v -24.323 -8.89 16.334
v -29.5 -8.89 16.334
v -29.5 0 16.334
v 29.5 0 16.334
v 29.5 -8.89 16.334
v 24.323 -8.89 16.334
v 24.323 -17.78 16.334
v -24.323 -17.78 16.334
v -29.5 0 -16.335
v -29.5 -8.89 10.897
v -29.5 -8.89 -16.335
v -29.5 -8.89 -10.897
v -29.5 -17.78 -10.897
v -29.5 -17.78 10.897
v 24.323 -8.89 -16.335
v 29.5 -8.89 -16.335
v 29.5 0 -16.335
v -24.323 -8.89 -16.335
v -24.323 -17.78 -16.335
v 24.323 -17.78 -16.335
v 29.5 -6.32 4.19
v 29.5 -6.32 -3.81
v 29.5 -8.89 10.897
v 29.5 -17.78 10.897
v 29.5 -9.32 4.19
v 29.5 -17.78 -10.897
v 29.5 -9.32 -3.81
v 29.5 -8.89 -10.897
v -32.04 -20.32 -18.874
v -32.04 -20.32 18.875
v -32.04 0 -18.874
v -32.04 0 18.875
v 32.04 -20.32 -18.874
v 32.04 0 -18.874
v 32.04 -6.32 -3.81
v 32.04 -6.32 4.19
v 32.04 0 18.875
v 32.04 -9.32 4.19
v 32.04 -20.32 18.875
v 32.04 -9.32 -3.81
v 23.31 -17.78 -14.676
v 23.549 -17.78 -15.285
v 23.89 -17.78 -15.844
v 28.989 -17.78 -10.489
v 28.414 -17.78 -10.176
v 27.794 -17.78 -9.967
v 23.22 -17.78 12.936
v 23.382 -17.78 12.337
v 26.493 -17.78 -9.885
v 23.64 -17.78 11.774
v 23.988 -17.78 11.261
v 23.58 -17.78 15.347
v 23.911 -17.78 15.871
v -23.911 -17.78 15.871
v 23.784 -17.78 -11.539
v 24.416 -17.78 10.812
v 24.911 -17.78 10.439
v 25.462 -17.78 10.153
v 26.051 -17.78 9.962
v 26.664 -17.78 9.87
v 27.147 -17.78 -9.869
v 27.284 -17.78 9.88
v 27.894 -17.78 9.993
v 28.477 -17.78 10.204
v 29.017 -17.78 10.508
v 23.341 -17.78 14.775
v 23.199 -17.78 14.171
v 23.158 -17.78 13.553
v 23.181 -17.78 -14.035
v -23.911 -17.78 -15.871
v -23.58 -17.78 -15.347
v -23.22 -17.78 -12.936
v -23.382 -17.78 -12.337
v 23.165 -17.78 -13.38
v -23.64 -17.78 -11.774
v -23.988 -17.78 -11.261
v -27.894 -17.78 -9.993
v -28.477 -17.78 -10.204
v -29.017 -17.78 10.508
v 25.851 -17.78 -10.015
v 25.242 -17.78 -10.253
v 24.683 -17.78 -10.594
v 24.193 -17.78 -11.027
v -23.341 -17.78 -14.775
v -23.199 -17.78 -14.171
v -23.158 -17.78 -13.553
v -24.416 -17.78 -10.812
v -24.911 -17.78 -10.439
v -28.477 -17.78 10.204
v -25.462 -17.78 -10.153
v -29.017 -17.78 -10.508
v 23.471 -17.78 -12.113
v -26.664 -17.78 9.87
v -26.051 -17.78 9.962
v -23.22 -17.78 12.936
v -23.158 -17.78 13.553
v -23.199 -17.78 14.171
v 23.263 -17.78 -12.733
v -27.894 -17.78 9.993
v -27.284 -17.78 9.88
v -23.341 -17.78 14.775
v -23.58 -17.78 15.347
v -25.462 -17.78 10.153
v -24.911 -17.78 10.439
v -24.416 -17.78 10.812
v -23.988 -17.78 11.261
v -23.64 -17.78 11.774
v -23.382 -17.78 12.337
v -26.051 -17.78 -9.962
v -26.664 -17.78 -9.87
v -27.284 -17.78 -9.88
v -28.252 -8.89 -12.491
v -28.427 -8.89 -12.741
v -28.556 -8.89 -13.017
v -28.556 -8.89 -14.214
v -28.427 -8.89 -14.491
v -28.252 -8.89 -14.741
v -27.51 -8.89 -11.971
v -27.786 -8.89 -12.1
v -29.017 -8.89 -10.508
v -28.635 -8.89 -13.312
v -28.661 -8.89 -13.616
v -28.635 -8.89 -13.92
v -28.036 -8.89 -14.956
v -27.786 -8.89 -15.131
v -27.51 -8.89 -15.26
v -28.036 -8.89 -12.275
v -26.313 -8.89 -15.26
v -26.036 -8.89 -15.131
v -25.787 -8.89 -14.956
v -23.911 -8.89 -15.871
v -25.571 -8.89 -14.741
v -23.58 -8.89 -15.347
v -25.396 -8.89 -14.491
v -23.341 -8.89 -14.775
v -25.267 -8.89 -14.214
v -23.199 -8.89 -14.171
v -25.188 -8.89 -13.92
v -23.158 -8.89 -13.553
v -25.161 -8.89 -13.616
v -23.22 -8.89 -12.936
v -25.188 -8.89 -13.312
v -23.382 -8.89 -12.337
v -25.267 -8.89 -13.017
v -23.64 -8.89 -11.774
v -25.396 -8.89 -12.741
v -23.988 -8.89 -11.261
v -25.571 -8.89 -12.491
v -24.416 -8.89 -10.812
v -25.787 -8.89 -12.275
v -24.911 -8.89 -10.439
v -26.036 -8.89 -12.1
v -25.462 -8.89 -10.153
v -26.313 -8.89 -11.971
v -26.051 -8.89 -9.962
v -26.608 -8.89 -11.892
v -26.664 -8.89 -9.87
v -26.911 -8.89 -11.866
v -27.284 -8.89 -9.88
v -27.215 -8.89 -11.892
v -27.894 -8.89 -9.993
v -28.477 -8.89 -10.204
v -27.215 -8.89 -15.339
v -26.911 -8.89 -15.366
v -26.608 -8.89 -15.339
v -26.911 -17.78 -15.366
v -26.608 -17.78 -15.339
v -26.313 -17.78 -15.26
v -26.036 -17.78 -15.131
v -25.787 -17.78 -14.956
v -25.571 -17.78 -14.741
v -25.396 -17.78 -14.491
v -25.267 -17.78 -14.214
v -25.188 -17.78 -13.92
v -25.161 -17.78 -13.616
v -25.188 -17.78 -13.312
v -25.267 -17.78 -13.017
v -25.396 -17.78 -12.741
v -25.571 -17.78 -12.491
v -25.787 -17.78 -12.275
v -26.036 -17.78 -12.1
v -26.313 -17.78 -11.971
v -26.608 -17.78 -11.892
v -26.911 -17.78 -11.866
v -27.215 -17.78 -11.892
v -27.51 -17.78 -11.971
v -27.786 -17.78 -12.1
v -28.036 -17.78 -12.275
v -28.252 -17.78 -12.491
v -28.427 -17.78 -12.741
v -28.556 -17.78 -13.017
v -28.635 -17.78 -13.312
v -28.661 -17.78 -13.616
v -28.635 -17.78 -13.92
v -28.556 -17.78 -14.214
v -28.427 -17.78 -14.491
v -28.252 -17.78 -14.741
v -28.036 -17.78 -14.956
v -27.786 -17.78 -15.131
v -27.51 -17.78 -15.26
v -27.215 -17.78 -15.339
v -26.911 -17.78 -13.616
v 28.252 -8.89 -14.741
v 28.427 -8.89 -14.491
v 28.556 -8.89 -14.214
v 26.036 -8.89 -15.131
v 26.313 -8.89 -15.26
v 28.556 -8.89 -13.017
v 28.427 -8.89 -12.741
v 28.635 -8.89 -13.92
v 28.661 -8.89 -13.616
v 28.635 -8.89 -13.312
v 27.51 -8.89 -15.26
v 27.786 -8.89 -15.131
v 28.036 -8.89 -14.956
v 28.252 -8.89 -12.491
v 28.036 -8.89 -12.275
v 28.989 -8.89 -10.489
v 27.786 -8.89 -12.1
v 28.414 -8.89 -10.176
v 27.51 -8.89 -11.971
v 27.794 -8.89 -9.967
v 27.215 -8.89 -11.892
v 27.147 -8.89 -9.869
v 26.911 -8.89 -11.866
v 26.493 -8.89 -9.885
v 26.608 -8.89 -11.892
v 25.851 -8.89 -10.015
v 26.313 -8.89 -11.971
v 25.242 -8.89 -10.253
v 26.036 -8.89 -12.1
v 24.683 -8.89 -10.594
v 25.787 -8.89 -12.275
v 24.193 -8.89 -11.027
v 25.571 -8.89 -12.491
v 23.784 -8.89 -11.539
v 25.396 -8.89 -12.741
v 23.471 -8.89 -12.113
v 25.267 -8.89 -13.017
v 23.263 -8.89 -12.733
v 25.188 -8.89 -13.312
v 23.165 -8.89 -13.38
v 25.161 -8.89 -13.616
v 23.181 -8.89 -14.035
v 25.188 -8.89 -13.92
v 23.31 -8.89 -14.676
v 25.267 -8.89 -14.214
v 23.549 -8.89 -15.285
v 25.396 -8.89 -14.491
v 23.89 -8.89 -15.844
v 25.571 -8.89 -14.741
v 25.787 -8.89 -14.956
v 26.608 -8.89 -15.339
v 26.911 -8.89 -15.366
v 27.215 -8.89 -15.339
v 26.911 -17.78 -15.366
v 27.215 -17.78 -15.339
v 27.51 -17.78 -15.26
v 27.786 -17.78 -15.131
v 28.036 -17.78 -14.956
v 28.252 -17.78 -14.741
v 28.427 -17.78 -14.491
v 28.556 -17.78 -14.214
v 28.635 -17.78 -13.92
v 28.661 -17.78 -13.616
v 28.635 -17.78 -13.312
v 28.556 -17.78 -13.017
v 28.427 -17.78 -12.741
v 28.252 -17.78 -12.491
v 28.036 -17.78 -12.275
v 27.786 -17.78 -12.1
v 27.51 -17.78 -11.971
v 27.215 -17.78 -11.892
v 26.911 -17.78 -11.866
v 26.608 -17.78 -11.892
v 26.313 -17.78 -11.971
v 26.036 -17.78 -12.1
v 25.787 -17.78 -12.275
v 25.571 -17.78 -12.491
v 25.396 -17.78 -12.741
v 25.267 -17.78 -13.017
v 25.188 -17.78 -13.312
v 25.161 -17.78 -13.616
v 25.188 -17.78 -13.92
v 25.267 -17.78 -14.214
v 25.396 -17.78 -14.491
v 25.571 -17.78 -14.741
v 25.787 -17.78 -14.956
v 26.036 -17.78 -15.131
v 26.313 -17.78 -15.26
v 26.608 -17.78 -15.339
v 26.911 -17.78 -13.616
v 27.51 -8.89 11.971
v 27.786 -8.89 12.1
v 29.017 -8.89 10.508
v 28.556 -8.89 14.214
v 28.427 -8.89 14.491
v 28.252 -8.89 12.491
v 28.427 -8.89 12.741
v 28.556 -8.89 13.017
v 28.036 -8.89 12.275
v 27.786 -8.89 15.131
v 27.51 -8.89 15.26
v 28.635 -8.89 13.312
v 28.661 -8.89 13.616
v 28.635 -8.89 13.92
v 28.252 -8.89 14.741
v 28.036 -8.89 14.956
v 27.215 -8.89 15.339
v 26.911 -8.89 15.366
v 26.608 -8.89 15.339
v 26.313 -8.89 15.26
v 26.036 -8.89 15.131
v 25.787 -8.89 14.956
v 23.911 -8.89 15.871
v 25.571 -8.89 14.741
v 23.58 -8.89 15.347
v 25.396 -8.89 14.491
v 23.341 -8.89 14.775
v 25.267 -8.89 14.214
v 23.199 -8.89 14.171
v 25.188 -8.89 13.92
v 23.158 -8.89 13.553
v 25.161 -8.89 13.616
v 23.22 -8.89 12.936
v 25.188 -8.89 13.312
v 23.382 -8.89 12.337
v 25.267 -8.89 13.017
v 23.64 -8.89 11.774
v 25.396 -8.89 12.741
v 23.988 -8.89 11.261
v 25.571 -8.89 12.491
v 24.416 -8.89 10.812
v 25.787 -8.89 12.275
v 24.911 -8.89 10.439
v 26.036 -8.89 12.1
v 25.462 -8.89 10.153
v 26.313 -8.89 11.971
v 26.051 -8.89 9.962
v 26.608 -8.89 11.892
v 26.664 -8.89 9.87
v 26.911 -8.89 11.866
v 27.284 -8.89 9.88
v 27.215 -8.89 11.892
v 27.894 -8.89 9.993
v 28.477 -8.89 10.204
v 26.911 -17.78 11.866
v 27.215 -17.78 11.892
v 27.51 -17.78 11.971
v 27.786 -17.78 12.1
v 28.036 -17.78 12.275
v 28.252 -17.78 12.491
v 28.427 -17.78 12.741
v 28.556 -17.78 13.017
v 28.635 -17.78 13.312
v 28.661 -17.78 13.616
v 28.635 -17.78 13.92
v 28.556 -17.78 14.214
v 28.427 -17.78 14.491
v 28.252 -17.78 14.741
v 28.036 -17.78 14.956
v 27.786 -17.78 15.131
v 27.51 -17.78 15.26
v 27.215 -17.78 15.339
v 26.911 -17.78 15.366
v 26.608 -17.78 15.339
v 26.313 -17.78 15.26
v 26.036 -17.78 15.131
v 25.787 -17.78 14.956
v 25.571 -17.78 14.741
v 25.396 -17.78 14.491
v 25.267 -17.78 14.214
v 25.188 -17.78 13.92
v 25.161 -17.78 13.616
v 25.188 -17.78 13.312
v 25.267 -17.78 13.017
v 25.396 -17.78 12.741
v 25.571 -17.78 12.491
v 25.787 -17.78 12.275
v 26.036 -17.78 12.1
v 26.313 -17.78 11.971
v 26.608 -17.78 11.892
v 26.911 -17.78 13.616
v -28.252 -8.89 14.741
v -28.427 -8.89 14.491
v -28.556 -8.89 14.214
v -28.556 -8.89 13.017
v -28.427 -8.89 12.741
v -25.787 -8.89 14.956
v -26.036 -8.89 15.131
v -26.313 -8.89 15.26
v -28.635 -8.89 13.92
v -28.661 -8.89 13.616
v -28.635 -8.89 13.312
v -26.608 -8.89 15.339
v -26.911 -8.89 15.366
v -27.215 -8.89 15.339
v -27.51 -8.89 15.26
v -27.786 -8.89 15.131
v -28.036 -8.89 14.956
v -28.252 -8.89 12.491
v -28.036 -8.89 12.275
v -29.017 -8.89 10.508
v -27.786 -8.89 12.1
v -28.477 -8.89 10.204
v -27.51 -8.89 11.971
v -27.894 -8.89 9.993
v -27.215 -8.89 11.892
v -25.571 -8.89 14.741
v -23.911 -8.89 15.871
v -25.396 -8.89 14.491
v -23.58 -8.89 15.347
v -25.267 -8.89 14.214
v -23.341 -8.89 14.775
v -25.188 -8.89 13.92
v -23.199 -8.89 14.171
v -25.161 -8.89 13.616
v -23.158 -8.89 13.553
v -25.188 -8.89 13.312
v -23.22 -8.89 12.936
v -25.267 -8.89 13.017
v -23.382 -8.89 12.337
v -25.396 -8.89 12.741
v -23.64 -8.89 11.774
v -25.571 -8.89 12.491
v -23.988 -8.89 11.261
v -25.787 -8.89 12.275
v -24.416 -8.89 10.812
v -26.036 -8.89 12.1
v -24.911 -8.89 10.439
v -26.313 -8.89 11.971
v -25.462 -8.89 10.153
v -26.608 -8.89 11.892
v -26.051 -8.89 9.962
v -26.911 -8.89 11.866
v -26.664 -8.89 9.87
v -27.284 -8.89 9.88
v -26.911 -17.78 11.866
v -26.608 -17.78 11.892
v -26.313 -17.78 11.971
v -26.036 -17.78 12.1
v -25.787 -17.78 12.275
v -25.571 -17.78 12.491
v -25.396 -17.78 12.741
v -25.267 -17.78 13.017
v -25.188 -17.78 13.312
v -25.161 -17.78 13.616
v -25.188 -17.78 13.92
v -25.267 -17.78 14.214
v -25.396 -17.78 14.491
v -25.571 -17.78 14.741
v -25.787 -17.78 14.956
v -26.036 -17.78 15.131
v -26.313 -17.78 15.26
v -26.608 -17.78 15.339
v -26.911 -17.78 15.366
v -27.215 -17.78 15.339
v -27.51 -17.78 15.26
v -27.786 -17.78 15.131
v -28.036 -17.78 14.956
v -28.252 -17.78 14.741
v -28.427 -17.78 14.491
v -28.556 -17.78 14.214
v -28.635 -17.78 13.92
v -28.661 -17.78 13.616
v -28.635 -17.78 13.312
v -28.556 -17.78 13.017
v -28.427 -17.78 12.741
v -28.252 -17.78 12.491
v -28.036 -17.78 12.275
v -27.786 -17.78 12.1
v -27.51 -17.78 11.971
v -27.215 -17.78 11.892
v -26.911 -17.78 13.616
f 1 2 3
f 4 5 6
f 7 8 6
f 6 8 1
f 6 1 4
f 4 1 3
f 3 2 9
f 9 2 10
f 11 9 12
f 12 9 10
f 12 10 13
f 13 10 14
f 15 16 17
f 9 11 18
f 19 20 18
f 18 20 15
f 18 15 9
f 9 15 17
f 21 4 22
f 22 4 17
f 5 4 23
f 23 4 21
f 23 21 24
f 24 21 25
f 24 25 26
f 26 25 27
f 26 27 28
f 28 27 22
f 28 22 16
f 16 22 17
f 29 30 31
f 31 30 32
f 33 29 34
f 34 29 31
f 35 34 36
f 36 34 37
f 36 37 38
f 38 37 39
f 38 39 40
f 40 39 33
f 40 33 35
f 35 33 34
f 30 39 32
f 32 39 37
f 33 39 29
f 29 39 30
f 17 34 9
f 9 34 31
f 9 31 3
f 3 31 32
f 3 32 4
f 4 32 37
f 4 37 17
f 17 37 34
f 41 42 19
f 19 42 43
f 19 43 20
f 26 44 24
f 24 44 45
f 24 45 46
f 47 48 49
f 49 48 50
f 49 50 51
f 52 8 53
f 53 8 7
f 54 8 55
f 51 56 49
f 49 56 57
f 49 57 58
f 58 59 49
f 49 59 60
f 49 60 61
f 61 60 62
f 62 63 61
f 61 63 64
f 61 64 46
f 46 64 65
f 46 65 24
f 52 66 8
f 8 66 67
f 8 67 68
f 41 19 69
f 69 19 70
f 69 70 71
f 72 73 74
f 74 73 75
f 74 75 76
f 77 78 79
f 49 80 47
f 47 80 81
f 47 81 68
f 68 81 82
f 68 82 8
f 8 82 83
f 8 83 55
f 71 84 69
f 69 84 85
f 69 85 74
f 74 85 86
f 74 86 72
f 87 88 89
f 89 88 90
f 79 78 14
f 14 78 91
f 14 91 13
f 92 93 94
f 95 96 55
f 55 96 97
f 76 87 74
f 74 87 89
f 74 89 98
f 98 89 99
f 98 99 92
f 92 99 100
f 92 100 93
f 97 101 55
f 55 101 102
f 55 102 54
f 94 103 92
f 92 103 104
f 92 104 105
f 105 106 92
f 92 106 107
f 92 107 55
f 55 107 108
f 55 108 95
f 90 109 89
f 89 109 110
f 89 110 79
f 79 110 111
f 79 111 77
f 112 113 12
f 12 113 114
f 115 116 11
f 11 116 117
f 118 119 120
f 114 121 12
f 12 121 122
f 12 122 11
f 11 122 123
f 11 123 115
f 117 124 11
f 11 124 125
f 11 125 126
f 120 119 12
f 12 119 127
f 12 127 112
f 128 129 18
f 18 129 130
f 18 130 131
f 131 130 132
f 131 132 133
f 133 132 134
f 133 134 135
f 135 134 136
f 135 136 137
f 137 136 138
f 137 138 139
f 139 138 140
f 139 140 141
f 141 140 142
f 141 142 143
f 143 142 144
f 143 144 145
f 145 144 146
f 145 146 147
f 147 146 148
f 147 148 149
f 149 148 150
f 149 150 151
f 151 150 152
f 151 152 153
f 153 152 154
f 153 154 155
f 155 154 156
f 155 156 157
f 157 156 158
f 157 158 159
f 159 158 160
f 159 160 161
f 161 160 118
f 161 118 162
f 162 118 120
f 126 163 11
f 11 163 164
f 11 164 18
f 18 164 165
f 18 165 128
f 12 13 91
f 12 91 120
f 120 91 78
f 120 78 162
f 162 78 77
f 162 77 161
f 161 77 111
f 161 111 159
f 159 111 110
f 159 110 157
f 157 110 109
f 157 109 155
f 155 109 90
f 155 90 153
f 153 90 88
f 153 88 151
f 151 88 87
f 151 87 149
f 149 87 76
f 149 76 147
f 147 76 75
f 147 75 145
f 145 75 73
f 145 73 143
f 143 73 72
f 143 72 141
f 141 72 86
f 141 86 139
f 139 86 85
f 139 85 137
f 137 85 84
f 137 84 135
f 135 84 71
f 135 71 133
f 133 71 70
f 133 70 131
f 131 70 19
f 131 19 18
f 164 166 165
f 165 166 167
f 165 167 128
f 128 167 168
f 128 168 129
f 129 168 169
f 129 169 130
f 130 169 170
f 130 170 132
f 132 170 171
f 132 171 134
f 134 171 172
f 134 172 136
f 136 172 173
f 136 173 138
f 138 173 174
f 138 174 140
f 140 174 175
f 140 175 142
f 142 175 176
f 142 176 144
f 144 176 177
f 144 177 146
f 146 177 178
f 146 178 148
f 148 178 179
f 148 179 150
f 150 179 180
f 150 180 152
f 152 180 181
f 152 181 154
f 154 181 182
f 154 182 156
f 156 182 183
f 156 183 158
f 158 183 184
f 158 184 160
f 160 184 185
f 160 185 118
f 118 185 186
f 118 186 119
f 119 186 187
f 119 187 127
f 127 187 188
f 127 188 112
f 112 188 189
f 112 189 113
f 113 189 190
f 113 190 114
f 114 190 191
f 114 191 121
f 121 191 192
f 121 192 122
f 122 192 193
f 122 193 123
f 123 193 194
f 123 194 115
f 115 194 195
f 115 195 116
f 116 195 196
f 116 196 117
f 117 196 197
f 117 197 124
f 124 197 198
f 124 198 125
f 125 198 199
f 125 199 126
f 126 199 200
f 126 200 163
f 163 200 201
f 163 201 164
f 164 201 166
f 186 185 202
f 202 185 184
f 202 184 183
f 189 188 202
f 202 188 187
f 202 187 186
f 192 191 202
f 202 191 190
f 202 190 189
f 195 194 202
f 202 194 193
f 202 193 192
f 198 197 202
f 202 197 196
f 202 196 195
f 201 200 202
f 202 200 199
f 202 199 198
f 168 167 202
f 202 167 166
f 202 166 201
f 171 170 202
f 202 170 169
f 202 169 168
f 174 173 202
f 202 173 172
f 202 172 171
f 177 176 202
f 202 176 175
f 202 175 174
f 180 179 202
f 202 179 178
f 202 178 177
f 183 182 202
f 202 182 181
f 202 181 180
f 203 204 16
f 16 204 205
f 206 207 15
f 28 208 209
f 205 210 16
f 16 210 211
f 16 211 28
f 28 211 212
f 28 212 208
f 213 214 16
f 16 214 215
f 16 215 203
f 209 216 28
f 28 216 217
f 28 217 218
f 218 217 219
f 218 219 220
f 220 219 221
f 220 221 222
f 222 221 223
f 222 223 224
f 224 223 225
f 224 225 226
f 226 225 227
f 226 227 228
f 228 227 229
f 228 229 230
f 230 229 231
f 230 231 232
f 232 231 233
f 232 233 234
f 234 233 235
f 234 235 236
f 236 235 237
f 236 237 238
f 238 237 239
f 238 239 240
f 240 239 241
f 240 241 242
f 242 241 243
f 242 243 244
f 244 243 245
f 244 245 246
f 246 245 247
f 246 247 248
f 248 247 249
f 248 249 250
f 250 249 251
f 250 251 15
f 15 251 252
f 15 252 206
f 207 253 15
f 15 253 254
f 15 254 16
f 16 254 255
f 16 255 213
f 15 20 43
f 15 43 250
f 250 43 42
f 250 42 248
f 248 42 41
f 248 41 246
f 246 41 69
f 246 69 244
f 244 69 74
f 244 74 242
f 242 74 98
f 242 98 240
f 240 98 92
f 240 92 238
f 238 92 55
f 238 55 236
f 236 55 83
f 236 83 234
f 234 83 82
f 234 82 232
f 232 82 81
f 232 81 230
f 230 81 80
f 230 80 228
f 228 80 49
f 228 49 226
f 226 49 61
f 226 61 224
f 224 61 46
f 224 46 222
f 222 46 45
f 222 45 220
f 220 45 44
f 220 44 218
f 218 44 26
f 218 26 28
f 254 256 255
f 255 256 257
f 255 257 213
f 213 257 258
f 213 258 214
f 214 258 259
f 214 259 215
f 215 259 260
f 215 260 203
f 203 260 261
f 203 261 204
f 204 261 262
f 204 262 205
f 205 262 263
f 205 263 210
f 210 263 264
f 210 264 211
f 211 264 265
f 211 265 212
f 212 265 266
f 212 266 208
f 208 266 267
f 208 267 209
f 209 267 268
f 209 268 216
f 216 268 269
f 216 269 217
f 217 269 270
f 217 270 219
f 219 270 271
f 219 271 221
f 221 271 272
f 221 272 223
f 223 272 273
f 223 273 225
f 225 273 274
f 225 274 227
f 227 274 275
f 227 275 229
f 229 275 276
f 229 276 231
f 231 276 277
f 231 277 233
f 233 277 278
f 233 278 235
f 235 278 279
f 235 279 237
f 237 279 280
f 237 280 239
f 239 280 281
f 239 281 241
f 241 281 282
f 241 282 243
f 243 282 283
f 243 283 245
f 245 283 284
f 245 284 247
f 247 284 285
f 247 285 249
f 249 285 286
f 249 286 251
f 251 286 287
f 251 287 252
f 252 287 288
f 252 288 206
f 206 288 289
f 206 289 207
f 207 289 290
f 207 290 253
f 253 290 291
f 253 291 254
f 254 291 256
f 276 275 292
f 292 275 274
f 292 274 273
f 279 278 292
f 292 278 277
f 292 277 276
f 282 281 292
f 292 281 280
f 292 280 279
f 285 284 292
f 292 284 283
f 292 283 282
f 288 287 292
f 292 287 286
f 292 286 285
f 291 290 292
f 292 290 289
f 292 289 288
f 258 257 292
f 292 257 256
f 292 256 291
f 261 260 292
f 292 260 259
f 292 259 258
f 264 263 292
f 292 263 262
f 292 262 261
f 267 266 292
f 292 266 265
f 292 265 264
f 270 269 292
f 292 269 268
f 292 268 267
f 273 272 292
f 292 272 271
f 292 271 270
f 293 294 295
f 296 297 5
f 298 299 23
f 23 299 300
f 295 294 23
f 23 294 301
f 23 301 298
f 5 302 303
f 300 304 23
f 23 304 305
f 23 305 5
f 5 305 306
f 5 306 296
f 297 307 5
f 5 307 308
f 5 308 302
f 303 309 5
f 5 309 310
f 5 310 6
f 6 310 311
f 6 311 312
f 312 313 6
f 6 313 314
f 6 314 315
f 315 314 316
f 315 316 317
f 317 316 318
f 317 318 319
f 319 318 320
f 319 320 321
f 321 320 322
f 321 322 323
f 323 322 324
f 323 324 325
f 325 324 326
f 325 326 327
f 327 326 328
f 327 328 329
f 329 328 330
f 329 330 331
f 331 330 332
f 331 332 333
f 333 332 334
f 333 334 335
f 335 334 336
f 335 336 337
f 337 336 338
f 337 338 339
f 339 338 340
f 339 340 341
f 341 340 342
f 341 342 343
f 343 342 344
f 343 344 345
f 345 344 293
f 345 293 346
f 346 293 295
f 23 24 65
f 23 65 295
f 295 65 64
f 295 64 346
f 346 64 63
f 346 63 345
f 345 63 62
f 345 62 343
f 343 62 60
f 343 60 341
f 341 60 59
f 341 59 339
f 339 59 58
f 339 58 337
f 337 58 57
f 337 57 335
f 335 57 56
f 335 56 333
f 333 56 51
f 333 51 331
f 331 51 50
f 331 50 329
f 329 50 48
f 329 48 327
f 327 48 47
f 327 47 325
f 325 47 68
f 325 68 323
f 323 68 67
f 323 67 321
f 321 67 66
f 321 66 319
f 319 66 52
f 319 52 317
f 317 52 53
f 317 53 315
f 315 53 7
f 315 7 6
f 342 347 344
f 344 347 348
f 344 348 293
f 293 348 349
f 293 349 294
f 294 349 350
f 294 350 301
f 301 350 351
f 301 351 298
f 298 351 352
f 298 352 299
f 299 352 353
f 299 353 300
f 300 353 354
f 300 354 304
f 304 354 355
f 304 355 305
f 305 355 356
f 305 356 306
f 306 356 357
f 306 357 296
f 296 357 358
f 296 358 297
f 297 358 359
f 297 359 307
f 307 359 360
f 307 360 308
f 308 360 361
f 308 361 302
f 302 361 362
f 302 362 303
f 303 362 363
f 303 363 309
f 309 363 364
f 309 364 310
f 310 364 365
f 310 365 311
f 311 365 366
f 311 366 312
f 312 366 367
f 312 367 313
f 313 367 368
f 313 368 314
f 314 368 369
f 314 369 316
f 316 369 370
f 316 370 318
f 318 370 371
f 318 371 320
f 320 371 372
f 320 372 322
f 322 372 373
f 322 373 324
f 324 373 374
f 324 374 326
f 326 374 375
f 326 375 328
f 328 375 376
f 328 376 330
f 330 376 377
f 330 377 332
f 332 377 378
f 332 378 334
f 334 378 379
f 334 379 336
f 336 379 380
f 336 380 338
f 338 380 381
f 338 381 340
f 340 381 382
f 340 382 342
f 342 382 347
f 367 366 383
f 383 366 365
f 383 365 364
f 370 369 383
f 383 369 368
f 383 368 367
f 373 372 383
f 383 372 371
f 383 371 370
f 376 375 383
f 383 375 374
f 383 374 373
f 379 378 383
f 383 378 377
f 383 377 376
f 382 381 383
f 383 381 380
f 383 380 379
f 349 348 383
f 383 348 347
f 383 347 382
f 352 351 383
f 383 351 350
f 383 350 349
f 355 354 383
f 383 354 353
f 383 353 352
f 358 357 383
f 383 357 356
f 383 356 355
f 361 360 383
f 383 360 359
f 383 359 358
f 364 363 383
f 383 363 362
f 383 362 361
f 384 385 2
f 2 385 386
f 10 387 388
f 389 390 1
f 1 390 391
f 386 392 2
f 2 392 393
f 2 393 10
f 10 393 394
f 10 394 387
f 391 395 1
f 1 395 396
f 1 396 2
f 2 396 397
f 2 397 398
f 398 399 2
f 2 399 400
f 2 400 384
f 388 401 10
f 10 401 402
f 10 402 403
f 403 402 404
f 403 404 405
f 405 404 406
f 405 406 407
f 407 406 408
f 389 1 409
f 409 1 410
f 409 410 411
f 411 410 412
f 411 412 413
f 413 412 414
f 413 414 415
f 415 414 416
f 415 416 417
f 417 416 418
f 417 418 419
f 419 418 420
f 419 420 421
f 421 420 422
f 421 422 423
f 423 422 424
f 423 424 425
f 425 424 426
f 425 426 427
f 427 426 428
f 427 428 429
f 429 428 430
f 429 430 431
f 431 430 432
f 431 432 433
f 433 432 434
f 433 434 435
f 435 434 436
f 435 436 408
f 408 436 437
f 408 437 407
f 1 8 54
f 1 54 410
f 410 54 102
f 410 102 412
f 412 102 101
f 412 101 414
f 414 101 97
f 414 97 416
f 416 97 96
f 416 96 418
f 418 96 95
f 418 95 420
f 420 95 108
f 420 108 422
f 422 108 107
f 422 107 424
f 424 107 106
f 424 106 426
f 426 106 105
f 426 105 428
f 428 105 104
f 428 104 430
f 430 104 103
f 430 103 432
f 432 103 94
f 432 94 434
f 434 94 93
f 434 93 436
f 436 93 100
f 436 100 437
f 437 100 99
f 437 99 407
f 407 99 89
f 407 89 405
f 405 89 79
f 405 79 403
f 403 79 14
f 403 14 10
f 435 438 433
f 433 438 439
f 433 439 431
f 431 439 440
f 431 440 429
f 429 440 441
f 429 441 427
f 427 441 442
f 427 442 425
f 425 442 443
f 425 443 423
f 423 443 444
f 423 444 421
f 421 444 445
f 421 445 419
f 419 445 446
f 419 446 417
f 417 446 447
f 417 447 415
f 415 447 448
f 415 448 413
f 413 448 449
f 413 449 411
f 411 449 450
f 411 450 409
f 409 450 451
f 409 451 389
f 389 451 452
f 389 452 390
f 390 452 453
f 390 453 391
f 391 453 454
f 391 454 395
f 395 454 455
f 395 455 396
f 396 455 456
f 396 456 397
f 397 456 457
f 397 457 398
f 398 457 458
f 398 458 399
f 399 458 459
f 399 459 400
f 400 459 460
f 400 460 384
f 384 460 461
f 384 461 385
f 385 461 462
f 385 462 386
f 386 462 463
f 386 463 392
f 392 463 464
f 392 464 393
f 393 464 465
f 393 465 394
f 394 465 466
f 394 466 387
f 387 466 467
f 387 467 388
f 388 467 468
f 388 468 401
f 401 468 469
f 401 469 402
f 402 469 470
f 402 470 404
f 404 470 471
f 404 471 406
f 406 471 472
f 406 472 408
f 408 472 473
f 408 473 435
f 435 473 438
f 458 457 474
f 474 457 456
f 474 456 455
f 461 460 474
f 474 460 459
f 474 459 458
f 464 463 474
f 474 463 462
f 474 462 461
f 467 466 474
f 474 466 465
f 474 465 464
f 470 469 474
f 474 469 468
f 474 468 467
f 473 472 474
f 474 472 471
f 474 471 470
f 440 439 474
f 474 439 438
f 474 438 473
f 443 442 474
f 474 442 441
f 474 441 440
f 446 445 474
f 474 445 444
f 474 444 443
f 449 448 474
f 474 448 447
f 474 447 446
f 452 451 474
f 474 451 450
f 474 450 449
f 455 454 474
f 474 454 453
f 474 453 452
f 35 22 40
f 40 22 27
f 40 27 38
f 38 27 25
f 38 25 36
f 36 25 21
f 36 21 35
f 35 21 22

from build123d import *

# Parameters (mm, degrees)
SKETCH1_W           = 64.08
SKETCH1_H           = 37.749
BOSS_EXTRUDE1_DEPTH = 20.32
SKETCH1_6_W         = 59
SKETCH1_6_H         = 32.669
CUT_EXTRUDE1_DEPTH  = 17.78
SKETCH4_R           = 1.75
BOSS_EXTRUDE2_DEPTH = 8.89
SKETCH6_W           = 8
SKETCH6_H           = 3
CUT_EXTRUDE2_DEPTH  = 8.89


with BuildPart() as part:
    # Sketch1 → Boss-Extrude1 (new body)
    with BuildSketch(Plane(origin=(0, 0, 0), x_dir=(1, 0, 0), z_dir=(0, 1, 0))):
        Rectangle(SKETCH1_W, SKETCH1_H)
    extrude(amount=-BOSS_EXTRUDE1_DEPTH)

    # Sketch1<6> → Cut-Extrude1 (cut)
    with BuildSketch(Plane(origin=(0, 0, 0), x_dir=(1, 0, 0), z_dir=(0, 1, 0))):
        Rectangle(SKETCH1_6_W, SKETCH1_6_H)
    extrude(amount=-CUT_EXTRUDE1_DEPTH, mode=Mode.SUBTRACT)

    # Sketch4 → Boss-Extrude2 (add)
    # profile 1 of 4: a face of its own
    with BuildSketch(Plane(origin=(0, -17.78, 0), x_dir=(1, 0, 0), z_dir=(0, 1, 0))):
        with BuildLine():
            Line((-29.5, 16.3345), (-24.3228, 16.3345))
            ThreePointArc((-24.3228, 16.3345), (-24.192690413, 11.027190413), (-29.5, 10.897080827))
            Line((-29.5, 10.897080827), (-29.5, 16.3345))
        make_face()
        with Locations((-26.9114, 13.615790413)):
            Circle(SKETCH4_R, mode=Mode.SUBTRACT)
    # profile 2 of 4: a face of its own
    with BuildSketch(Plane(origin=(0, -17.78, 0), x_dir=(1, 0, 0), z_dir=(0, 1, 0))):
        with BuildLine():
            Line((29.5, 10.897080827), (29.5, 16.3345))
            Line((29.5, 16.3345), (24.3228, 16.3345))
            ThreePointArc((24.3228, 16.3345), (24.192690413, 11.027190413), (29.5, 10.897080827))
        make_face()
        with Locations((26.9114, 13.615790413)):
            Circle(SKETCH4_R, mode=Mode.SUBTRACT)
    # profile 3 of 4: a face of its own
    with BuildSketch(Plane(origin=(0, -17.78, 0), x_dir=(1, 0, 0), z_dir=(0, 1, 0))):
        with BuildLine():
            Line((29.5, -10.897080827), (29.5, -16.3345))
            Line((29.5, -16.3345), (24.3228, -16.3345))
            ThreePointArc((24.3228, -16.3345), (24.192690413, -11.027190413), (29.5, -10.897080827))
        make_face()
        with Locations((26.9114, -13.615790413)):
            Circle(SKETCH4_R, mode=Mode.SUBTRACT)
    # profile 4 of 4: a face of its own
    with BuildSketch(Plane(origin=(0, -17.78, 0), x_dir=(1, 0, 0), z_dir=(0, 1, 0))):
        with BuildLine():
            Line((-29.5, -10.897080827), (-29.5, -16.3345))
            Line((-29.5, -16.3345), (-24.3228, -16.3345))
            ThreePointArc((-24.3228, -16.3345), (-24.192690413, -11.027190413), (-29.5, -10.897080827))
        make_face()
        with Locations((-26.9114, -13.615790413)):
            Circle(SKETCH4_R, mode=Mode.SUBTRACT)
    extrude(amount=BOSS_EXTRUDE2_DEPTH)

    # Sketch6 → Cut-Extrude2 (cut)
    with BuildSketch(Plane(origin=(32.04, 0, 0), x_dir=(0, 0, -1), z_dir=(1, 0, 0))):
        with Locations((-0.19, -7.82)):
            Rectangle(SKETCH6_W, SKETCH6_H)
    extrude(amount=-CUT_EXTRUDE2_DEPTH, mode=Mode.SUBTRACT)


solid = part.part
